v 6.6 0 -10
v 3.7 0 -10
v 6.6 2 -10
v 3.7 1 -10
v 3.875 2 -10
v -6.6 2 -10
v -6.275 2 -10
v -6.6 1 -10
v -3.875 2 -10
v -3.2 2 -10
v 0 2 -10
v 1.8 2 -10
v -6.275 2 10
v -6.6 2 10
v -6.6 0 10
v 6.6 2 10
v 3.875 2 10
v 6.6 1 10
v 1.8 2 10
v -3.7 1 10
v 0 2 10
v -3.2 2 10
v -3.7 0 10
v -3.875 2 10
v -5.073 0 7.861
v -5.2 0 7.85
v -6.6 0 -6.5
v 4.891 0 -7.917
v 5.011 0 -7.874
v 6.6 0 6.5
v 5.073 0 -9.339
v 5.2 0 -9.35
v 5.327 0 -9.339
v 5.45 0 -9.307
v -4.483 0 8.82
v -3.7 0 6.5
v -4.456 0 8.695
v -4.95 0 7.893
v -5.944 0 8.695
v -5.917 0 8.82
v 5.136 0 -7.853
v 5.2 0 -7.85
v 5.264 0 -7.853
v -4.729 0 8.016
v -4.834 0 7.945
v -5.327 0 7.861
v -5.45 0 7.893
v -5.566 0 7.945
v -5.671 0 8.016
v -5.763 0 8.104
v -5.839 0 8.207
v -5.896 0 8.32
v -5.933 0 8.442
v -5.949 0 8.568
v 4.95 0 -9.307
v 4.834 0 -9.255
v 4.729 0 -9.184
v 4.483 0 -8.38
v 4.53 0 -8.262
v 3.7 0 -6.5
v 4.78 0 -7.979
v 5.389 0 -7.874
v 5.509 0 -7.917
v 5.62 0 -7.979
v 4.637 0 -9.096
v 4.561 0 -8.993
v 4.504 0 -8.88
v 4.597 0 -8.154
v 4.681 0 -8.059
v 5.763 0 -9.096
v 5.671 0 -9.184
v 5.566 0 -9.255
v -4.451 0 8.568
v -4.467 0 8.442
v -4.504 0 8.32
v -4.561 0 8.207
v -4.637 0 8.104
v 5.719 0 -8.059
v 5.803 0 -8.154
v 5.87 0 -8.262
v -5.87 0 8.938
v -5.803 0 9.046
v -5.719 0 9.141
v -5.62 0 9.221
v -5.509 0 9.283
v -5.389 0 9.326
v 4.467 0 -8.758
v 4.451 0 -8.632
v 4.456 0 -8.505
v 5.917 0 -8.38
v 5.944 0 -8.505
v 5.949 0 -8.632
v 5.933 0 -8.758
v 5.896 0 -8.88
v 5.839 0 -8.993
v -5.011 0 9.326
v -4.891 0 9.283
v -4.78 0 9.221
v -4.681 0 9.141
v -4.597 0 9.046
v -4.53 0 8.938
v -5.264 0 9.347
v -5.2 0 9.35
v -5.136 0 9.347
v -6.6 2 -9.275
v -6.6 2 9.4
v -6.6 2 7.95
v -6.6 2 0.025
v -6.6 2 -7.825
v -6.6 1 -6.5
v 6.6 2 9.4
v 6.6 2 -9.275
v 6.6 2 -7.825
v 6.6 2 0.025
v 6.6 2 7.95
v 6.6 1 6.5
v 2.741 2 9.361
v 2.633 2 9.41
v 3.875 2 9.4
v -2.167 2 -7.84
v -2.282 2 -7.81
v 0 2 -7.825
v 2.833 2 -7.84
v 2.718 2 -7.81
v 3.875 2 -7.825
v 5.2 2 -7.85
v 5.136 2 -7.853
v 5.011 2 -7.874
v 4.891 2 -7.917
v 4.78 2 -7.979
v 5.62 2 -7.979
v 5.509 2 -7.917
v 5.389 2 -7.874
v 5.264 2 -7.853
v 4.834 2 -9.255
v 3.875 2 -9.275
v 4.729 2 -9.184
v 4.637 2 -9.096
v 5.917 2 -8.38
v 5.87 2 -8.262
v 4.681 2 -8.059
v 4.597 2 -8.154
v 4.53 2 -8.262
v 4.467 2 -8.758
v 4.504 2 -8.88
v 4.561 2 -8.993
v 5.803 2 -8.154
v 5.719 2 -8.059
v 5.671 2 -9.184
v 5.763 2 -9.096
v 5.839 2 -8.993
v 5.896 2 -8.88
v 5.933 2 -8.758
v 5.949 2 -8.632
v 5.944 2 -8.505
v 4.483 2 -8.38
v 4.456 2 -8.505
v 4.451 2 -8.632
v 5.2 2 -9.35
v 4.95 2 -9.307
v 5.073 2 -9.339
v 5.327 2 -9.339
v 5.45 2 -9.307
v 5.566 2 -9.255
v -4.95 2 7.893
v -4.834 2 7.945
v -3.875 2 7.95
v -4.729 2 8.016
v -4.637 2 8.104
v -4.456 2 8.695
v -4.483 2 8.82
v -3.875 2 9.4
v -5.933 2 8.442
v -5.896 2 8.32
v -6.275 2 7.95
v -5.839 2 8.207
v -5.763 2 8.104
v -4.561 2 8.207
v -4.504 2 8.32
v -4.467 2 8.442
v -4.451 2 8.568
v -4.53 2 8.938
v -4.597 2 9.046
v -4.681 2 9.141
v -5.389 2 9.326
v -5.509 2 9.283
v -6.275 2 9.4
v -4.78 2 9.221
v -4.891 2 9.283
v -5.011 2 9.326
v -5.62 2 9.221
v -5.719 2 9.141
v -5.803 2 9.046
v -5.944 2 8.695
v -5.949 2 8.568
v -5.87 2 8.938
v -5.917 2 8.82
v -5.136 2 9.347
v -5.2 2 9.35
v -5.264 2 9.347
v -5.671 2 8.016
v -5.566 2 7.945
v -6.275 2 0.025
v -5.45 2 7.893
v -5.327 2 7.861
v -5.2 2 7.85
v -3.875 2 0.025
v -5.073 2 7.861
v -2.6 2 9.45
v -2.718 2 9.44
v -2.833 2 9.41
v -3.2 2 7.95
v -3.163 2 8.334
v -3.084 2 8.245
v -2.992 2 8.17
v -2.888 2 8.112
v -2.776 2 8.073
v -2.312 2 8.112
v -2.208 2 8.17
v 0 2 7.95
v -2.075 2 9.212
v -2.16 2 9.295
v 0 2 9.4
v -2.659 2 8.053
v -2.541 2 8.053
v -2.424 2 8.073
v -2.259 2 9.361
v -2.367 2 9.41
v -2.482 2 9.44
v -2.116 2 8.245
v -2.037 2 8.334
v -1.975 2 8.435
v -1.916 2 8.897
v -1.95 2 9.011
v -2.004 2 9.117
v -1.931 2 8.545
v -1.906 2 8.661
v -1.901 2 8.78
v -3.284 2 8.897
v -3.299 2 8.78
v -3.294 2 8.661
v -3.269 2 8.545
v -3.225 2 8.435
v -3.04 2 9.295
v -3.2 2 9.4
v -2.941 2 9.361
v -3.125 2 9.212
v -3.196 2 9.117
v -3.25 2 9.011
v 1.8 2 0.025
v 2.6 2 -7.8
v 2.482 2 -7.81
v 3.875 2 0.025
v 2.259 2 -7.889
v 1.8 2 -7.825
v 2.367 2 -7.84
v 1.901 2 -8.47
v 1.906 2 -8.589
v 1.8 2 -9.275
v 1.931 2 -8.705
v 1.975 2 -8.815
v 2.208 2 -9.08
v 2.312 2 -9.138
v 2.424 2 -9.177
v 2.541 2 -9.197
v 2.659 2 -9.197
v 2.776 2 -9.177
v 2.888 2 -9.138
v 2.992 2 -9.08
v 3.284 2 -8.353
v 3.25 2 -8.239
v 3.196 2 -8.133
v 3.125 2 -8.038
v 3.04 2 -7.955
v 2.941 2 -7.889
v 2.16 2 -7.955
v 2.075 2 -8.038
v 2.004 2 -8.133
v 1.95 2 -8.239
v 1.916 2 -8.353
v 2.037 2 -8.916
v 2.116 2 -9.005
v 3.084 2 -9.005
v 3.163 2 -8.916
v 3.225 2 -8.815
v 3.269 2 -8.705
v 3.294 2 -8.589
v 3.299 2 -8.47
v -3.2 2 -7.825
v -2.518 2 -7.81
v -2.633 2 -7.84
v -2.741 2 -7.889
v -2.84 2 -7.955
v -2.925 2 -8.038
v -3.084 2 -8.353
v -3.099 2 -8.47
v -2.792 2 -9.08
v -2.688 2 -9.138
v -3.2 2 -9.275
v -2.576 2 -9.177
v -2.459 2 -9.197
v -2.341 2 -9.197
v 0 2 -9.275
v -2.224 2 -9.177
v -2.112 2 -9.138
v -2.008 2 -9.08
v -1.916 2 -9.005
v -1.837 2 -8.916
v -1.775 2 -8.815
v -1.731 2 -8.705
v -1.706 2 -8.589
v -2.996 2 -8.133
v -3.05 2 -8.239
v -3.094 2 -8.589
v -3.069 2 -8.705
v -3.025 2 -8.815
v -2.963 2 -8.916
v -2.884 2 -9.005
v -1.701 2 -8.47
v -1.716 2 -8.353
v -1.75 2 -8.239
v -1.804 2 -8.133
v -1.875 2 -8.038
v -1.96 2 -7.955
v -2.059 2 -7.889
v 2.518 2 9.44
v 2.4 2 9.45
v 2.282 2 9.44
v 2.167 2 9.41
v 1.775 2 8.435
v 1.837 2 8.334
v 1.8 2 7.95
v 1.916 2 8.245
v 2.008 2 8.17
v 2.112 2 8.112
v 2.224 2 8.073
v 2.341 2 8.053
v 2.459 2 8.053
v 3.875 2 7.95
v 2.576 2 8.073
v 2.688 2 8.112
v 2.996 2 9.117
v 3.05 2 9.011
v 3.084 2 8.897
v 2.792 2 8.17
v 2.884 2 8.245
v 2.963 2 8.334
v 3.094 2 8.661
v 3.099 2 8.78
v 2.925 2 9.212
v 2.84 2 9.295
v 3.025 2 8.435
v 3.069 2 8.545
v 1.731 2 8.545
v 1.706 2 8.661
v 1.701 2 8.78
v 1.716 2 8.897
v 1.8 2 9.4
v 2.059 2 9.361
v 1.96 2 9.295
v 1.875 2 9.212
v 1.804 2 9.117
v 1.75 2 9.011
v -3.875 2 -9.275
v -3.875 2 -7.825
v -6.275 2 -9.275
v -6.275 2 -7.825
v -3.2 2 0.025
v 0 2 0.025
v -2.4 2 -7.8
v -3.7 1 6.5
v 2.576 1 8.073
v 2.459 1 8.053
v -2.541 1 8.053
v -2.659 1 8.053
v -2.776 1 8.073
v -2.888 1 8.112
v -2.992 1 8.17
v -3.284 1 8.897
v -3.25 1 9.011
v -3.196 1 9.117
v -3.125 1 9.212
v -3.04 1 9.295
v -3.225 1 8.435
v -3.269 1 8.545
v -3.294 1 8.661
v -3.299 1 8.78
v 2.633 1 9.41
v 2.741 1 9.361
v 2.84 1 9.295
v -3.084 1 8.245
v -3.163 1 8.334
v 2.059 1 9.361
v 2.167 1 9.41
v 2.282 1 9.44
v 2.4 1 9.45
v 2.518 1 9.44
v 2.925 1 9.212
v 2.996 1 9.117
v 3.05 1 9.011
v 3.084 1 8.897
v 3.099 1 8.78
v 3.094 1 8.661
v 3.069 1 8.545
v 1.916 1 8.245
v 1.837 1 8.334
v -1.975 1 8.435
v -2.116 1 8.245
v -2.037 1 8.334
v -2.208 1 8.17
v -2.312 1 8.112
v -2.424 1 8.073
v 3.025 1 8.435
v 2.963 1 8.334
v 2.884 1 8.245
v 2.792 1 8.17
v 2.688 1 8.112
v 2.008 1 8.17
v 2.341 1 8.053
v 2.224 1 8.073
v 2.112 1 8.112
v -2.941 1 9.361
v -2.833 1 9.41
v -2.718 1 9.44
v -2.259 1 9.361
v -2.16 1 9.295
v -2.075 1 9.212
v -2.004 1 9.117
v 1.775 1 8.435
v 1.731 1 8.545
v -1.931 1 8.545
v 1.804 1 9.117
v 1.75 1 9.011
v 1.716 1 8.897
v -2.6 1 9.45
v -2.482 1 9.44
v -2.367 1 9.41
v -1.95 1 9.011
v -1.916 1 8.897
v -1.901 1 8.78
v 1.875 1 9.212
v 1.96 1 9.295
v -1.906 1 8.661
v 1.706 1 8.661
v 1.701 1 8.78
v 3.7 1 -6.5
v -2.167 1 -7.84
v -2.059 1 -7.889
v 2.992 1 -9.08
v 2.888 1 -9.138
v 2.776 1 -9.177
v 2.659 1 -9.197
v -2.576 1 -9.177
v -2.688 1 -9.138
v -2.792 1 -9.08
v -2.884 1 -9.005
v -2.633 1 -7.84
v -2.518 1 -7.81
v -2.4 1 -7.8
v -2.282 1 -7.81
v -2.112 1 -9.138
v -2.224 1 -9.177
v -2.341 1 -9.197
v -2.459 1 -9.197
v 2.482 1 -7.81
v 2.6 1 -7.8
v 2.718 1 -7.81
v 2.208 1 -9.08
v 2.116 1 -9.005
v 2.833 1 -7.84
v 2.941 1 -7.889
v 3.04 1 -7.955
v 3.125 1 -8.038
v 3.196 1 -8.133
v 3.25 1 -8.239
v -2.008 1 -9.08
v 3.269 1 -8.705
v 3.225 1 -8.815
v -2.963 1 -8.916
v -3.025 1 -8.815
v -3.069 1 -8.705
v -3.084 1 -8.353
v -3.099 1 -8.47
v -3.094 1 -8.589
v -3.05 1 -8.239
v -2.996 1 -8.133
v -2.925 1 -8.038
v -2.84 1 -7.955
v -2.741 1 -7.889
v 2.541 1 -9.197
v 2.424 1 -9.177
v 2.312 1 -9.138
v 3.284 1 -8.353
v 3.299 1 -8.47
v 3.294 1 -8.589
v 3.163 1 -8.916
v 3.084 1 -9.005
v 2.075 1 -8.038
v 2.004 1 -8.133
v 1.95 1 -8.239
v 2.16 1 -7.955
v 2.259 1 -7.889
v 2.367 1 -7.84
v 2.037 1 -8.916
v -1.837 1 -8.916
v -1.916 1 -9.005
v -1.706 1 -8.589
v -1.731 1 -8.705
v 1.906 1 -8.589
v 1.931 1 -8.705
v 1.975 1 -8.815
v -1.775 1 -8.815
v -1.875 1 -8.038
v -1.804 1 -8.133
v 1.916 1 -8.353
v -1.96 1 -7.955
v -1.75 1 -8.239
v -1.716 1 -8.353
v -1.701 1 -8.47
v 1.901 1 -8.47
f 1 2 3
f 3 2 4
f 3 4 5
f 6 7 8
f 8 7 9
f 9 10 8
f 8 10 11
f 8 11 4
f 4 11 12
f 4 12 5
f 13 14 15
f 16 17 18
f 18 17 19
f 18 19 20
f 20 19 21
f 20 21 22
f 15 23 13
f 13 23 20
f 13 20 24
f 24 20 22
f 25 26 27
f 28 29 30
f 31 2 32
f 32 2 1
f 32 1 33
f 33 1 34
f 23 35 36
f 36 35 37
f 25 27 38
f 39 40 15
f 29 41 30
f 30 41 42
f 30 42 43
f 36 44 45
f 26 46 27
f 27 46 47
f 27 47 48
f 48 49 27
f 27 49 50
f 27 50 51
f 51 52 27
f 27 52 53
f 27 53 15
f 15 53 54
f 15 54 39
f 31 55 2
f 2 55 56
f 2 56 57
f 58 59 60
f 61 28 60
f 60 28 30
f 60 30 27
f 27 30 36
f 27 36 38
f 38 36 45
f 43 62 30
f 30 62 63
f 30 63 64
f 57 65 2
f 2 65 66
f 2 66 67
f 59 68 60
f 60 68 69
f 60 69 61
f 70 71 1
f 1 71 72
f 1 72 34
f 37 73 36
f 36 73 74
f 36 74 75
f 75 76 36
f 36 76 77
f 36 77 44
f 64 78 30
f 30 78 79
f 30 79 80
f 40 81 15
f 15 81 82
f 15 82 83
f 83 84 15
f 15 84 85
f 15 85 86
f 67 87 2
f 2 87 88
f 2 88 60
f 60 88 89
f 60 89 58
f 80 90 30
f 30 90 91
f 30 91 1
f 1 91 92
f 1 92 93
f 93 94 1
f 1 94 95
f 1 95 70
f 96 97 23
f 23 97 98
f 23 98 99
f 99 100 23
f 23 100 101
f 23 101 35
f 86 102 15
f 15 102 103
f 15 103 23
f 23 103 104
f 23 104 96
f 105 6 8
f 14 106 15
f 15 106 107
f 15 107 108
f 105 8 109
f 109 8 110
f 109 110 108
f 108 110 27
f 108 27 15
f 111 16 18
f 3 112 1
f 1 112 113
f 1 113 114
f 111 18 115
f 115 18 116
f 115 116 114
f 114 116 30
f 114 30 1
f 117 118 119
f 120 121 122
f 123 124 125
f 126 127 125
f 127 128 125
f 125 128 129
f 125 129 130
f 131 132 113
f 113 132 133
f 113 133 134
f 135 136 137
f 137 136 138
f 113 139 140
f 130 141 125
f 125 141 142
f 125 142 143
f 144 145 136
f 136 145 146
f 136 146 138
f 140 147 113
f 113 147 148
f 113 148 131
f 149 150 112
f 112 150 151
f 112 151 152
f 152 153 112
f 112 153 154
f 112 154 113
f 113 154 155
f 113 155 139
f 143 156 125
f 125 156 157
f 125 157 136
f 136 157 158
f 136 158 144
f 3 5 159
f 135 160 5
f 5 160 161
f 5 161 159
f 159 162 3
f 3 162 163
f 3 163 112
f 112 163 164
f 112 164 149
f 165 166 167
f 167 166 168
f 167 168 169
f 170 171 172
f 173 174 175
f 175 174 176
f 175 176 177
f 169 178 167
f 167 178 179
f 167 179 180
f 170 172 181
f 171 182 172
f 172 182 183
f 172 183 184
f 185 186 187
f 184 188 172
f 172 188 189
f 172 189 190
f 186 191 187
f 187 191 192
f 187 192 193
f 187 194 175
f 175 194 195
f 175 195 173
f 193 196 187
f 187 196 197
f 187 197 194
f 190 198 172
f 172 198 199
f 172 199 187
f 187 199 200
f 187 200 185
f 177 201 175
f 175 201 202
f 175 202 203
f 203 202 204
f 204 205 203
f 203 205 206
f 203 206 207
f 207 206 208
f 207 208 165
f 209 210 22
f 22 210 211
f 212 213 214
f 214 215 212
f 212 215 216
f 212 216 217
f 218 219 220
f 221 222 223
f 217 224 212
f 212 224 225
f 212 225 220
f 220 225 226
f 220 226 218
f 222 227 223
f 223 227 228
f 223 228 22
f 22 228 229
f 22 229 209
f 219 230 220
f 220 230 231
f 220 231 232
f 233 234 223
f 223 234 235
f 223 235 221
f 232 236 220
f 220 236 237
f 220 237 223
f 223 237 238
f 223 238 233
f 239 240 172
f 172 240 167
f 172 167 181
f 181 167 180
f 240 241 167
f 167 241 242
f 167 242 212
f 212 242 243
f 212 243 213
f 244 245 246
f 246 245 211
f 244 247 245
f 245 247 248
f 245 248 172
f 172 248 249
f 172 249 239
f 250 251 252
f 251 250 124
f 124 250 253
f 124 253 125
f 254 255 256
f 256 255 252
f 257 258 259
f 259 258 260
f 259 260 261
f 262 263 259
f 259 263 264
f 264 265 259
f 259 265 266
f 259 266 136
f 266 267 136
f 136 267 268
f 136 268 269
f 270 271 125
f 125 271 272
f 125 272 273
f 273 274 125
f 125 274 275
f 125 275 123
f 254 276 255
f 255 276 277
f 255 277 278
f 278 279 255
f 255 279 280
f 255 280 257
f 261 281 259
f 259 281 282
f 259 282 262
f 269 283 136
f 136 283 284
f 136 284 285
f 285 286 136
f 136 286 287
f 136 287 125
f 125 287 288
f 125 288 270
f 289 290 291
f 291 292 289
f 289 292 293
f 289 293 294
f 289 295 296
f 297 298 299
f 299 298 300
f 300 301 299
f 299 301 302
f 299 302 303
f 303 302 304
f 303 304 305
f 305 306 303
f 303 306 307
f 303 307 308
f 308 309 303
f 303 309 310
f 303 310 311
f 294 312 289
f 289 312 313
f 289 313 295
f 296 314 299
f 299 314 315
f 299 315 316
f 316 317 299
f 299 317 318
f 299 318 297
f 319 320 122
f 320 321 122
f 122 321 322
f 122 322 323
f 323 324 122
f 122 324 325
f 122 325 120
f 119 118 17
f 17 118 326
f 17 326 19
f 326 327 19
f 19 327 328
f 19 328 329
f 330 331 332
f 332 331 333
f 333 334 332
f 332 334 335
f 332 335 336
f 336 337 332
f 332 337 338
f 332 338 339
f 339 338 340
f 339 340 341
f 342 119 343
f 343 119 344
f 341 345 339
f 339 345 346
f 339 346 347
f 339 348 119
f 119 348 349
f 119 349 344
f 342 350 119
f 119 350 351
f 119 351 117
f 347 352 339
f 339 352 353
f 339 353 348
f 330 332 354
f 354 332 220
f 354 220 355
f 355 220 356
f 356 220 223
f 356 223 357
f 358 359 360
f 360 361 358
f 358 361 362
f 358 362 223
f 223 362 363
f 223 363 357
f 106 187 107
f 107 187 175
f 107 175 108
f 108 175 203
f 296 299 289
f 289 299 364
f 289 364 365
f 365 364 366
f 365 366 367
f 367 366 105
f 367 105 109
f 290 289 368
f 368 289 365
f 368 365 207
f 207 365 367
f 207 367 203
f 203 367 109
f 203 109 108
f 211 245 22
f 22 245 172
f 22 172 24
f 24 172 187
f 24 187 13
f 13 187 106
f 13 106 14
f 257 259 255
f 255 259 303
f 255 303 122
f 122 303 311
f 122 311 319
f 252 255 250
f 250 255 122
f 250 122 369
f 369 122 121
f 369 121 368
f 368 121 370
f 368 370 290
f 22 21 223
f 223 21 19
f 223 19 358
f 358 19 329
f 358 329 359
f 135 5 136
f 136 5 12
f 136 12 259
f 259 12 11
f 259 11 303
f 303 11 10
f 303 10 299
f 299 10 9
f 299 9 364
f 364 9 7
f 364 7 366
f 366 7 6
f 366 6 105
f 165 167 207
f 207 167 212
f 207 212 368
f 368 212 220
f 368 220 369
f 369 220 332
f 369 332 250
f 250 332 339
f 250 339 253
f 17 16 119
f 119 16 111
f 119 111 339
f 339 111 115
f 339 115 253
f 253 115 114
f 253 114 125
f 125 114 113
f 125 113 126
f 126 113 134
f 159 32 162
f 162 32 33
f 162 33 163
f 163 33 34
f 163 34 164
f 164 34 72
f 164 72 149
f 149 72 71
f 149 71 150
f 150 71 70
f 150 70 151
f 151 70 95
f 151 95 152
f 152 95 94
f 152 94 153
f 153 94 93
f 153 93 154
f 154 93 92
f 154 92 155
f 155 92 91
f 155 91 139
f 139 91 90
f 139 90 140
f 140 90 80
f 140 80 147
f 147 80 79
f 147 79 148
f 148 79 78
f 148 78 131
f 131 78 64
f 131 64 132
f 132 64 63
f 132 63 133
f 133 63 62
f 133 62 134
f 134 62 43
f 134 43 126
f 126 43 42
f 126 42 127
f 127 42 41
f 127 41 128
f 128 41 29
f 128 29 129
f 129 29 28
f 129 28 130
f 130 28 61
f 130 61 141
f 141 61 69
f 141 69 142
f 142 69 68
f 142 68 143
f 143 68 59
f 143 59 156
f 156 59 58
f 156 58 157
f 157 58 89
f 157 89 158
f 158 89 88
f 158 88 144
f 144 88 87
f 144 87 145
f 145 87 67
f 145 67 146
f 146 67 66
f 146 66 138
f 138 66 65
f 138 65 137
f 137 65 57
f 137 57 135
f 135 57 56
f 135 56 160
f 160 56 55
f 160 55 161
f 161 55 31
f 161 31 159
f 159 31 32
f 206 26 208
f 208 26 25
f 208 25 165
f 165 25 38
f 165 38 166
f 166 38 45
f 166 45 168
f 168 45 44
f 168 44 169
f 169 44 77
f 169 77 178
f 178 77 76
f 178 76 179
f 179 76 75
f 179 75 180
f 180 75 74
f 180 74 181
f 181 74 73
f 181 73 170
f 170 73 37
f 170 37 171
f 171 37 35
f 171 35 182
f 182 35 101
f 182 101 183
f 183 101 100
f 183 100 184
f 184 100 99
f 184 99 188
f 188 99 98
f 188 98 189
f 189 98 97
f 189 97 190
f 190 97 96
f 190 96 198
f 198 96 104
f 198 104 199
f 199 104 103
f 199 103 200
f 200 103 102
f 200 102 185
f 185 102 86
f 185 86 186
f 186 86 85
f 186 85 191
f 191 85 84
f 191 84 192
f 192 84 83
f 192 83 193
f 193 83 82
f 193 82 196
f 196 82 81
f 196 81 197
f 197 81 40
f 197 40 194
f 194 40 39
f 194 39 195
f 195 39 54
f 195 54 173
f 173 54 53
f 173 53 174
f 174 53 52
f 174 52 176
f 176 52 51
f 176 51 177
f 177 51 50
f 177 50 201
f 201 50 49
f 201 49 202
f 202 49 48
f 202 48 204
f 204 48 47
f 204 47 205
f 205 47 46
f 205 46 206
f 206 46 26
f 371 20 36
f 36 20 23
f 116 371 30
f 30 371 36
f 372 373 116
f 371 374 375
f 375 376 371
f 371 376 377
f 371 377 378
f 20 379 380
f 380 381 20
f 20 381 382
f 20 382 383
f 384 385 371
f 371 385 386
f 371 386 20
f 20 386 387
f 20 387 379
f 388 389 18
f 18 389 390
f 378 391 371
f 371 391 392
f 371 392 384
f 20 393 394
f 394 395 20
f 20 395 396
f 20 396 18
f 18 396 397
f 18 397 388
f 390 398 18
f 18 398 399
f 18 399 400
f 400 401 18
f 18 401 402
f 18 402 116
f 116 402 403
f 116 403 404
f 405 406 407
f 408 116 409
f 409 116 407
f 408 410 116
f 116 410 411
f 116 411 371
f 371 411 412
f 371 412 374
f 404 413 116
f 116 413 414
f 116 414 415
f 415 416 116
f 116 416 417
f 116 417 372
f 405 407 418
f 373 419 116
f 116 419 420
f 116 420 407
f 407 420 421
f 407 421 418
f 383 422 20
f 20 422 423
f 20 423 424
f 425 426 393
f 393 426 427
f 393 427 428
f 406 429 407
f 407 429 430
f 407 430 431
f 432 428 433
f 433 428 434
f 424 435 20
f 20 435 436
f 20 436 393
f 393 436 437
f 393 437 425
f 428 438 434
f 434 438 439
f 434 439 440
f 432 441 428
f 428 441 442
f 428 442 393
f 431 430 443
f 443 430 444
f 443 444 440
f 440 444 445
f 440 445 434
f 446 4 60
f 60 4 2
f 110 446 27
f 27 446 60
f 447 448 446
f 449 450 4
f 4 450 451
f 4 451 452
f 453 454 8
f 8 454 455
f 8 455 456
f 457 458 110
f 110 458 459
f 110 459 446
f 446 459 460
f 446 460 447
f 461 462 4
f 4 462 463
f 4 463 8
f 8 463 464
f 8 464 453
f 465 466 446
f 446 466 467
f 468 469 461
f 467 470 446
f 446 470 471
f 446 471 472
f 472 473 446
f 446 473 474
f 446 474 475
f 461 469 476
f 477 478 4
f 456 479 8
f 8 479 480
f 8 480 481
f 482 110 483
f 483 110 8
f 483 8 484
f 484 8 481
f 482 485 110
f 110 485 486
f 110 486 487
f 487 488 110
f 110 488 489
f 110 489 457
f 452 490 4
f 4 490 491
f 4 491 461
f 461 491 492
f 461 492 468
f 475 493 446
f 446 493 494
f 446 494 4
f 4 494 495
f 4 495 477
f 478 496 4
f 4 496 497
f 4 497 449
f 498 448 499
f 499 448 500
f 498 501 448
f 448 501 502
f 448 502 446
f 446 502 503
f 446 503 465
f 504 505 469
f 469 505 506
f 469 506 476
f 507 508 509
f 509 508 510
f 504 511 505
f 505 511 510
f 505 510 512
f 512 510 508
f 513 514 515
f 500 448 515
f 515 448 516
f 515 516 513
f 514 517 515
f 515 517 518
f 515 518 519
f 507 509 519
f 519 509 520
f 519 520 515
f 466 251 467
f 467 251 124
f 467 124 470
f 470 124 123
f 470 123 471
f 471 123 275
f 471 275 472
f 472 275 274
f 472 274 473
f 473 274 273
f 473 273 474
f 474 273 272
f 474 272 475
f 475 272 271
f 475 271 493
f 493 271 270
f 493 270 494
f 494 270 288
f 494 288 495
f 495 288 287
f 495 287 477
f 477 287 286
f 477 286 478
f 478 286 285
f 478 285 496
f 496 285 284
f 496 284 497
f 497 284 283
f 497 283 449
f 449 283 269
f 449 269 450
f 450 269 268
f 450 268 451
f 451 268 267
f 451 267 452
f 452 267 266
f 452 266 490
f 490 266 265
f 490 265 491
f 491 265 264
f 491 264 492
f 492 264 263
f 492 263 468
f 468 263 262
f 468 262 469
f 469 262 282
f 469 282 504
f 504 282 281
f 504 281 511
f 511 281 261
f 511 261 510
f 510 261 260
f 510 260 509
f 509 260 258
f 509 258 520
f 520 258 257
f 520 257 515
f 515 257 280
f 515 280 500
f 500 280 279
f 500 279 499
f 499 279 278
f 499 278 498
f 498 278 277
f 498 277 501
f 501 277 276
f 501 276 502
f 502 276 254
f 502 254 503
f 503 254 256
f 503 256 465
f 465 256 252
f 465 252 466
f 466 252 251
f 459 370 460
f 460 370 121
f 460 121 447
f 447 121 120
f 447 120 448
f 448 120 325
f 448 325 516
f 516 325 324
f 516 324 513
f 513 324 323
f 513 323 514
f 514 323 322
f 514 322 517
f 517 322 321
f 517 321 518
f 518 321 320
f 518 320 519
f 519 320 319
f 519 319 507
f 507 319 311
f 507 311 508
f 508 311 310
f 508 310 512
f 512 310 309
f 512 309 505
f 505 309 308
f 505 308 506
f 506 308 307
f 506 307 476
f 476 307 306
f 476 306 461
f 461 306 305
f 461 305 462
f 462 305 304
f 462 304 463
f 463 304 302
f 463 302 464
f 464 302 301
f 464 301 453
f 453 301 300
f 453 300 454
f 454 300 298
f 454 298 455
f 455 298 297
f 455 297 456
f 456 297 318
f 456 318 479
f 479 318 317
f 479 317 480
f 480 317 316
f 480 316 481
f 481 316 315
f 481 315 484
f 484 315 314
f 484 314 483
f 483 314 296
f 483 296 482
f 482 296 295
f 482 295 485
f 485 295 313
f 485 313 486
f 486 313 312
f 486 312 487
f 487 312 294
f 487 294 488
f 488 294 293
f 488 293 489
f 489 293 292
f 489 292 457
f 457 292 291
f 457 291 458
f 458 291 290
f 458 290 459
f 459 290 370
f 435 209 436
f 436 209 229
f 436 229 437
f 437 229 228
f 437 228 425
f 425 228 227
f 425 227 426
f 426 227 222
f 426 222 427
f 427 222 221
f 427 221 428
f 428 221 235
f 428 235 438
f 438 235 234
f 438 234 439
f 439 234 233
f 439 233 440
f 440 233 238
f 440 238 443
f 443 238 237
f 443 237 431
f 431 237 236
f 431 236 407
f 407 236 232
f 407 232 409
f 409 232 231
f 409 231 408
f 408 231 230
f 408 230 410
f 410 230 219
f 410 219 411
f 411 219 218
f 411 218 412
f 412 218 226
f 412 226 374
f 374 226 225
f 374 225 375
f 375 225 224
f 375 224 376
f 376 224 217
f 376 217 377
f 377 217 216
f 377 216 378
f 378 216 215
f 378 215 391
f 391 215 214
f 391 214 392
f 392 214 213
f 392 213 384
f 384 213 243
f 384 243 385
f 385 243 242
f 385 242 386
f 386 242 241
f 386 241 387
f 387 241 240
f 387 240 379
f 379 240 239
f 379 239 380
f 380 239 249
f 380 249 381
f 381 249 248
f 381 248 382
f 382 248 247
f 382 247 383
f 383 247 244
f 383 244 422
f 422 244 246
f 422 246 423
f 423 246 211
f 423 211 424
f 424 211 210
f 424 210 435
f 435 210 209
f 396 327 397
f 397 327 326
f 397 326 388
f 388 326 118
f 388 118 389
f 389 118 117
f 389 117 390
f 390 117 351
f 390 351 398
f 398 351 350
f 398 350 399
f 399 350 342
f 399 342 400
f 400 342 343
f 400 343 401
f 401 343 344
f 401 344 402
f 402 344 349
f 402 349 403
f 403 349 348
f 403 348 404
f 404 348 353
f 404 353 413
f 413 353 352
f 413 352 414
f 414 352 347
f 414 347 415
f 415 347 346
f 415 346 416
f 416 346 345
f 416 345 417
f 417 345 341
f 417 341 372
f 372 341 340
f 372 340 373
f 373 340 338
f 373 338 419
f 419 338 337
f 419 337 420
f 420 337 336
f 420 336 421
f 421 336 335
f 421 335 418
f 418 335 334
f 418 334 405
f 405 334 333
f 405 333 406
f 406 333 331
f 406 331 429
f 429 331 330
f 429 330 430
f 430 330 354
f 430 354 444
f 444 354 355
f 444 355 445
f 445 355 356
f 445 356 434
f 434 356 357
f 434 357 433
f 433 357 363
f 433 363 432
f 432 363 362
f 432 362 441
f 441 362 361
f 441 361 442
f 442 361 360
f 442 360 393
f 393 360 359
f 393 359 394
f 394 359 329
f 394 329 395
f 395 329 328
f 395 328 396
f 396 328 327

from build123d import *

# Parameters (mm, degrees)
SKETCH_1_W          = 13.2
SKETCH_1_H          = 20
EXTRUDE_1_DEPTH     = 2
SKETCH_1_3_R        = 0.75
CUT_EXTRUDE_2_DEPTH = 13.147427711
CUT_EXTRUDE_START   = -2
SKETCH_2_W          = 10.3
SKETCH_2_H          = 3.5
CUT_EXTRUDE_1_DEPTH = 1
SKETCH_2_3_R        = 0.7
CUT_EXTRUDE_4_DEPTH = 13.147427711


with BuildPart() as part:
    # 草图1 → 凸台-拉伸1 (new body)
    with BuildSketch(Plane(origin=(0, 0, 0), x_dir=(1, 0, 0), z_dir=(0, 1, 0))):
        Rectangle(SKETCH_1_W, SKETCH_1_H)
    extrude(amount=EXTRUDE_1_DEPTH)

    # 草图1<3> → 切除-拉伸2 (cut, through all)
    with BuildSketch(Plane(origin=(0, 0, 0), x_dir=(1, 0, 0), z_dir=(0, 1, 0))):
        with Locations(Location((-5.2, -8.6, 0), (0, 0, 270))):
            Circle(SKETCH_1_3_R)
        with Locations(Location((5.2, 8.6, 0), (0, 0, 270))):
            Circle(SKETCH_1_3_R)
    extrude(amount=CUT_EXTRUDE_2_DEPTH, mode=Mode.SUBTRACT)

    # 草图2 → 切除-拉伸1 (cut)
    with BuildSketch(Plane(origin=(0, 2, 0), x_dir=(1, 0, 0), z_dir=(0, 1, 0)).offset(CUT_EXTRUDE_START)):
        with Locations((-1.45, 8.25)):
            Rectangle(SKETCH_2_W, SKETCH_2_H)
        with Locations((1.45, -8.25)):
            Rectangle(SKETCH_2_W, SKETCH_2_H)
    extrude(amount=CUT_EXTRUDE_1_DEPTH, mode=Mode.SUBTRACT)

    # 草图2<3> → 切除-拉伸4 (cut, through all)
    with BuildSketch(Plane(origin=(0, 2, 0), x_dir=(1, 0, 0), z_dir=(0, 1, 0))):
        with Locations(Location((-2.6, -8.75, 0), (0, 0, 270))):
            Circle(SKETCH_2_3_R)
        with Locations(Location((2.4, -8.75, 0), (0, 0, 270))):
            Circle(SKETCH_2_3_R)
        with Locations(Location((-2.4, 8.5, 0), (0, 0, 270))):
            Circle(SKETCH_2_3_R)
        with Locations(Location((2.6, 8.5, 0), (0, 0, 270))):
            Circle(SKETCH_2_3_R)
    extrude(amount=-CUT_EXTRUDE_4_DEPTH, mode=Mode.SUBTRACT)


solid = part.part
